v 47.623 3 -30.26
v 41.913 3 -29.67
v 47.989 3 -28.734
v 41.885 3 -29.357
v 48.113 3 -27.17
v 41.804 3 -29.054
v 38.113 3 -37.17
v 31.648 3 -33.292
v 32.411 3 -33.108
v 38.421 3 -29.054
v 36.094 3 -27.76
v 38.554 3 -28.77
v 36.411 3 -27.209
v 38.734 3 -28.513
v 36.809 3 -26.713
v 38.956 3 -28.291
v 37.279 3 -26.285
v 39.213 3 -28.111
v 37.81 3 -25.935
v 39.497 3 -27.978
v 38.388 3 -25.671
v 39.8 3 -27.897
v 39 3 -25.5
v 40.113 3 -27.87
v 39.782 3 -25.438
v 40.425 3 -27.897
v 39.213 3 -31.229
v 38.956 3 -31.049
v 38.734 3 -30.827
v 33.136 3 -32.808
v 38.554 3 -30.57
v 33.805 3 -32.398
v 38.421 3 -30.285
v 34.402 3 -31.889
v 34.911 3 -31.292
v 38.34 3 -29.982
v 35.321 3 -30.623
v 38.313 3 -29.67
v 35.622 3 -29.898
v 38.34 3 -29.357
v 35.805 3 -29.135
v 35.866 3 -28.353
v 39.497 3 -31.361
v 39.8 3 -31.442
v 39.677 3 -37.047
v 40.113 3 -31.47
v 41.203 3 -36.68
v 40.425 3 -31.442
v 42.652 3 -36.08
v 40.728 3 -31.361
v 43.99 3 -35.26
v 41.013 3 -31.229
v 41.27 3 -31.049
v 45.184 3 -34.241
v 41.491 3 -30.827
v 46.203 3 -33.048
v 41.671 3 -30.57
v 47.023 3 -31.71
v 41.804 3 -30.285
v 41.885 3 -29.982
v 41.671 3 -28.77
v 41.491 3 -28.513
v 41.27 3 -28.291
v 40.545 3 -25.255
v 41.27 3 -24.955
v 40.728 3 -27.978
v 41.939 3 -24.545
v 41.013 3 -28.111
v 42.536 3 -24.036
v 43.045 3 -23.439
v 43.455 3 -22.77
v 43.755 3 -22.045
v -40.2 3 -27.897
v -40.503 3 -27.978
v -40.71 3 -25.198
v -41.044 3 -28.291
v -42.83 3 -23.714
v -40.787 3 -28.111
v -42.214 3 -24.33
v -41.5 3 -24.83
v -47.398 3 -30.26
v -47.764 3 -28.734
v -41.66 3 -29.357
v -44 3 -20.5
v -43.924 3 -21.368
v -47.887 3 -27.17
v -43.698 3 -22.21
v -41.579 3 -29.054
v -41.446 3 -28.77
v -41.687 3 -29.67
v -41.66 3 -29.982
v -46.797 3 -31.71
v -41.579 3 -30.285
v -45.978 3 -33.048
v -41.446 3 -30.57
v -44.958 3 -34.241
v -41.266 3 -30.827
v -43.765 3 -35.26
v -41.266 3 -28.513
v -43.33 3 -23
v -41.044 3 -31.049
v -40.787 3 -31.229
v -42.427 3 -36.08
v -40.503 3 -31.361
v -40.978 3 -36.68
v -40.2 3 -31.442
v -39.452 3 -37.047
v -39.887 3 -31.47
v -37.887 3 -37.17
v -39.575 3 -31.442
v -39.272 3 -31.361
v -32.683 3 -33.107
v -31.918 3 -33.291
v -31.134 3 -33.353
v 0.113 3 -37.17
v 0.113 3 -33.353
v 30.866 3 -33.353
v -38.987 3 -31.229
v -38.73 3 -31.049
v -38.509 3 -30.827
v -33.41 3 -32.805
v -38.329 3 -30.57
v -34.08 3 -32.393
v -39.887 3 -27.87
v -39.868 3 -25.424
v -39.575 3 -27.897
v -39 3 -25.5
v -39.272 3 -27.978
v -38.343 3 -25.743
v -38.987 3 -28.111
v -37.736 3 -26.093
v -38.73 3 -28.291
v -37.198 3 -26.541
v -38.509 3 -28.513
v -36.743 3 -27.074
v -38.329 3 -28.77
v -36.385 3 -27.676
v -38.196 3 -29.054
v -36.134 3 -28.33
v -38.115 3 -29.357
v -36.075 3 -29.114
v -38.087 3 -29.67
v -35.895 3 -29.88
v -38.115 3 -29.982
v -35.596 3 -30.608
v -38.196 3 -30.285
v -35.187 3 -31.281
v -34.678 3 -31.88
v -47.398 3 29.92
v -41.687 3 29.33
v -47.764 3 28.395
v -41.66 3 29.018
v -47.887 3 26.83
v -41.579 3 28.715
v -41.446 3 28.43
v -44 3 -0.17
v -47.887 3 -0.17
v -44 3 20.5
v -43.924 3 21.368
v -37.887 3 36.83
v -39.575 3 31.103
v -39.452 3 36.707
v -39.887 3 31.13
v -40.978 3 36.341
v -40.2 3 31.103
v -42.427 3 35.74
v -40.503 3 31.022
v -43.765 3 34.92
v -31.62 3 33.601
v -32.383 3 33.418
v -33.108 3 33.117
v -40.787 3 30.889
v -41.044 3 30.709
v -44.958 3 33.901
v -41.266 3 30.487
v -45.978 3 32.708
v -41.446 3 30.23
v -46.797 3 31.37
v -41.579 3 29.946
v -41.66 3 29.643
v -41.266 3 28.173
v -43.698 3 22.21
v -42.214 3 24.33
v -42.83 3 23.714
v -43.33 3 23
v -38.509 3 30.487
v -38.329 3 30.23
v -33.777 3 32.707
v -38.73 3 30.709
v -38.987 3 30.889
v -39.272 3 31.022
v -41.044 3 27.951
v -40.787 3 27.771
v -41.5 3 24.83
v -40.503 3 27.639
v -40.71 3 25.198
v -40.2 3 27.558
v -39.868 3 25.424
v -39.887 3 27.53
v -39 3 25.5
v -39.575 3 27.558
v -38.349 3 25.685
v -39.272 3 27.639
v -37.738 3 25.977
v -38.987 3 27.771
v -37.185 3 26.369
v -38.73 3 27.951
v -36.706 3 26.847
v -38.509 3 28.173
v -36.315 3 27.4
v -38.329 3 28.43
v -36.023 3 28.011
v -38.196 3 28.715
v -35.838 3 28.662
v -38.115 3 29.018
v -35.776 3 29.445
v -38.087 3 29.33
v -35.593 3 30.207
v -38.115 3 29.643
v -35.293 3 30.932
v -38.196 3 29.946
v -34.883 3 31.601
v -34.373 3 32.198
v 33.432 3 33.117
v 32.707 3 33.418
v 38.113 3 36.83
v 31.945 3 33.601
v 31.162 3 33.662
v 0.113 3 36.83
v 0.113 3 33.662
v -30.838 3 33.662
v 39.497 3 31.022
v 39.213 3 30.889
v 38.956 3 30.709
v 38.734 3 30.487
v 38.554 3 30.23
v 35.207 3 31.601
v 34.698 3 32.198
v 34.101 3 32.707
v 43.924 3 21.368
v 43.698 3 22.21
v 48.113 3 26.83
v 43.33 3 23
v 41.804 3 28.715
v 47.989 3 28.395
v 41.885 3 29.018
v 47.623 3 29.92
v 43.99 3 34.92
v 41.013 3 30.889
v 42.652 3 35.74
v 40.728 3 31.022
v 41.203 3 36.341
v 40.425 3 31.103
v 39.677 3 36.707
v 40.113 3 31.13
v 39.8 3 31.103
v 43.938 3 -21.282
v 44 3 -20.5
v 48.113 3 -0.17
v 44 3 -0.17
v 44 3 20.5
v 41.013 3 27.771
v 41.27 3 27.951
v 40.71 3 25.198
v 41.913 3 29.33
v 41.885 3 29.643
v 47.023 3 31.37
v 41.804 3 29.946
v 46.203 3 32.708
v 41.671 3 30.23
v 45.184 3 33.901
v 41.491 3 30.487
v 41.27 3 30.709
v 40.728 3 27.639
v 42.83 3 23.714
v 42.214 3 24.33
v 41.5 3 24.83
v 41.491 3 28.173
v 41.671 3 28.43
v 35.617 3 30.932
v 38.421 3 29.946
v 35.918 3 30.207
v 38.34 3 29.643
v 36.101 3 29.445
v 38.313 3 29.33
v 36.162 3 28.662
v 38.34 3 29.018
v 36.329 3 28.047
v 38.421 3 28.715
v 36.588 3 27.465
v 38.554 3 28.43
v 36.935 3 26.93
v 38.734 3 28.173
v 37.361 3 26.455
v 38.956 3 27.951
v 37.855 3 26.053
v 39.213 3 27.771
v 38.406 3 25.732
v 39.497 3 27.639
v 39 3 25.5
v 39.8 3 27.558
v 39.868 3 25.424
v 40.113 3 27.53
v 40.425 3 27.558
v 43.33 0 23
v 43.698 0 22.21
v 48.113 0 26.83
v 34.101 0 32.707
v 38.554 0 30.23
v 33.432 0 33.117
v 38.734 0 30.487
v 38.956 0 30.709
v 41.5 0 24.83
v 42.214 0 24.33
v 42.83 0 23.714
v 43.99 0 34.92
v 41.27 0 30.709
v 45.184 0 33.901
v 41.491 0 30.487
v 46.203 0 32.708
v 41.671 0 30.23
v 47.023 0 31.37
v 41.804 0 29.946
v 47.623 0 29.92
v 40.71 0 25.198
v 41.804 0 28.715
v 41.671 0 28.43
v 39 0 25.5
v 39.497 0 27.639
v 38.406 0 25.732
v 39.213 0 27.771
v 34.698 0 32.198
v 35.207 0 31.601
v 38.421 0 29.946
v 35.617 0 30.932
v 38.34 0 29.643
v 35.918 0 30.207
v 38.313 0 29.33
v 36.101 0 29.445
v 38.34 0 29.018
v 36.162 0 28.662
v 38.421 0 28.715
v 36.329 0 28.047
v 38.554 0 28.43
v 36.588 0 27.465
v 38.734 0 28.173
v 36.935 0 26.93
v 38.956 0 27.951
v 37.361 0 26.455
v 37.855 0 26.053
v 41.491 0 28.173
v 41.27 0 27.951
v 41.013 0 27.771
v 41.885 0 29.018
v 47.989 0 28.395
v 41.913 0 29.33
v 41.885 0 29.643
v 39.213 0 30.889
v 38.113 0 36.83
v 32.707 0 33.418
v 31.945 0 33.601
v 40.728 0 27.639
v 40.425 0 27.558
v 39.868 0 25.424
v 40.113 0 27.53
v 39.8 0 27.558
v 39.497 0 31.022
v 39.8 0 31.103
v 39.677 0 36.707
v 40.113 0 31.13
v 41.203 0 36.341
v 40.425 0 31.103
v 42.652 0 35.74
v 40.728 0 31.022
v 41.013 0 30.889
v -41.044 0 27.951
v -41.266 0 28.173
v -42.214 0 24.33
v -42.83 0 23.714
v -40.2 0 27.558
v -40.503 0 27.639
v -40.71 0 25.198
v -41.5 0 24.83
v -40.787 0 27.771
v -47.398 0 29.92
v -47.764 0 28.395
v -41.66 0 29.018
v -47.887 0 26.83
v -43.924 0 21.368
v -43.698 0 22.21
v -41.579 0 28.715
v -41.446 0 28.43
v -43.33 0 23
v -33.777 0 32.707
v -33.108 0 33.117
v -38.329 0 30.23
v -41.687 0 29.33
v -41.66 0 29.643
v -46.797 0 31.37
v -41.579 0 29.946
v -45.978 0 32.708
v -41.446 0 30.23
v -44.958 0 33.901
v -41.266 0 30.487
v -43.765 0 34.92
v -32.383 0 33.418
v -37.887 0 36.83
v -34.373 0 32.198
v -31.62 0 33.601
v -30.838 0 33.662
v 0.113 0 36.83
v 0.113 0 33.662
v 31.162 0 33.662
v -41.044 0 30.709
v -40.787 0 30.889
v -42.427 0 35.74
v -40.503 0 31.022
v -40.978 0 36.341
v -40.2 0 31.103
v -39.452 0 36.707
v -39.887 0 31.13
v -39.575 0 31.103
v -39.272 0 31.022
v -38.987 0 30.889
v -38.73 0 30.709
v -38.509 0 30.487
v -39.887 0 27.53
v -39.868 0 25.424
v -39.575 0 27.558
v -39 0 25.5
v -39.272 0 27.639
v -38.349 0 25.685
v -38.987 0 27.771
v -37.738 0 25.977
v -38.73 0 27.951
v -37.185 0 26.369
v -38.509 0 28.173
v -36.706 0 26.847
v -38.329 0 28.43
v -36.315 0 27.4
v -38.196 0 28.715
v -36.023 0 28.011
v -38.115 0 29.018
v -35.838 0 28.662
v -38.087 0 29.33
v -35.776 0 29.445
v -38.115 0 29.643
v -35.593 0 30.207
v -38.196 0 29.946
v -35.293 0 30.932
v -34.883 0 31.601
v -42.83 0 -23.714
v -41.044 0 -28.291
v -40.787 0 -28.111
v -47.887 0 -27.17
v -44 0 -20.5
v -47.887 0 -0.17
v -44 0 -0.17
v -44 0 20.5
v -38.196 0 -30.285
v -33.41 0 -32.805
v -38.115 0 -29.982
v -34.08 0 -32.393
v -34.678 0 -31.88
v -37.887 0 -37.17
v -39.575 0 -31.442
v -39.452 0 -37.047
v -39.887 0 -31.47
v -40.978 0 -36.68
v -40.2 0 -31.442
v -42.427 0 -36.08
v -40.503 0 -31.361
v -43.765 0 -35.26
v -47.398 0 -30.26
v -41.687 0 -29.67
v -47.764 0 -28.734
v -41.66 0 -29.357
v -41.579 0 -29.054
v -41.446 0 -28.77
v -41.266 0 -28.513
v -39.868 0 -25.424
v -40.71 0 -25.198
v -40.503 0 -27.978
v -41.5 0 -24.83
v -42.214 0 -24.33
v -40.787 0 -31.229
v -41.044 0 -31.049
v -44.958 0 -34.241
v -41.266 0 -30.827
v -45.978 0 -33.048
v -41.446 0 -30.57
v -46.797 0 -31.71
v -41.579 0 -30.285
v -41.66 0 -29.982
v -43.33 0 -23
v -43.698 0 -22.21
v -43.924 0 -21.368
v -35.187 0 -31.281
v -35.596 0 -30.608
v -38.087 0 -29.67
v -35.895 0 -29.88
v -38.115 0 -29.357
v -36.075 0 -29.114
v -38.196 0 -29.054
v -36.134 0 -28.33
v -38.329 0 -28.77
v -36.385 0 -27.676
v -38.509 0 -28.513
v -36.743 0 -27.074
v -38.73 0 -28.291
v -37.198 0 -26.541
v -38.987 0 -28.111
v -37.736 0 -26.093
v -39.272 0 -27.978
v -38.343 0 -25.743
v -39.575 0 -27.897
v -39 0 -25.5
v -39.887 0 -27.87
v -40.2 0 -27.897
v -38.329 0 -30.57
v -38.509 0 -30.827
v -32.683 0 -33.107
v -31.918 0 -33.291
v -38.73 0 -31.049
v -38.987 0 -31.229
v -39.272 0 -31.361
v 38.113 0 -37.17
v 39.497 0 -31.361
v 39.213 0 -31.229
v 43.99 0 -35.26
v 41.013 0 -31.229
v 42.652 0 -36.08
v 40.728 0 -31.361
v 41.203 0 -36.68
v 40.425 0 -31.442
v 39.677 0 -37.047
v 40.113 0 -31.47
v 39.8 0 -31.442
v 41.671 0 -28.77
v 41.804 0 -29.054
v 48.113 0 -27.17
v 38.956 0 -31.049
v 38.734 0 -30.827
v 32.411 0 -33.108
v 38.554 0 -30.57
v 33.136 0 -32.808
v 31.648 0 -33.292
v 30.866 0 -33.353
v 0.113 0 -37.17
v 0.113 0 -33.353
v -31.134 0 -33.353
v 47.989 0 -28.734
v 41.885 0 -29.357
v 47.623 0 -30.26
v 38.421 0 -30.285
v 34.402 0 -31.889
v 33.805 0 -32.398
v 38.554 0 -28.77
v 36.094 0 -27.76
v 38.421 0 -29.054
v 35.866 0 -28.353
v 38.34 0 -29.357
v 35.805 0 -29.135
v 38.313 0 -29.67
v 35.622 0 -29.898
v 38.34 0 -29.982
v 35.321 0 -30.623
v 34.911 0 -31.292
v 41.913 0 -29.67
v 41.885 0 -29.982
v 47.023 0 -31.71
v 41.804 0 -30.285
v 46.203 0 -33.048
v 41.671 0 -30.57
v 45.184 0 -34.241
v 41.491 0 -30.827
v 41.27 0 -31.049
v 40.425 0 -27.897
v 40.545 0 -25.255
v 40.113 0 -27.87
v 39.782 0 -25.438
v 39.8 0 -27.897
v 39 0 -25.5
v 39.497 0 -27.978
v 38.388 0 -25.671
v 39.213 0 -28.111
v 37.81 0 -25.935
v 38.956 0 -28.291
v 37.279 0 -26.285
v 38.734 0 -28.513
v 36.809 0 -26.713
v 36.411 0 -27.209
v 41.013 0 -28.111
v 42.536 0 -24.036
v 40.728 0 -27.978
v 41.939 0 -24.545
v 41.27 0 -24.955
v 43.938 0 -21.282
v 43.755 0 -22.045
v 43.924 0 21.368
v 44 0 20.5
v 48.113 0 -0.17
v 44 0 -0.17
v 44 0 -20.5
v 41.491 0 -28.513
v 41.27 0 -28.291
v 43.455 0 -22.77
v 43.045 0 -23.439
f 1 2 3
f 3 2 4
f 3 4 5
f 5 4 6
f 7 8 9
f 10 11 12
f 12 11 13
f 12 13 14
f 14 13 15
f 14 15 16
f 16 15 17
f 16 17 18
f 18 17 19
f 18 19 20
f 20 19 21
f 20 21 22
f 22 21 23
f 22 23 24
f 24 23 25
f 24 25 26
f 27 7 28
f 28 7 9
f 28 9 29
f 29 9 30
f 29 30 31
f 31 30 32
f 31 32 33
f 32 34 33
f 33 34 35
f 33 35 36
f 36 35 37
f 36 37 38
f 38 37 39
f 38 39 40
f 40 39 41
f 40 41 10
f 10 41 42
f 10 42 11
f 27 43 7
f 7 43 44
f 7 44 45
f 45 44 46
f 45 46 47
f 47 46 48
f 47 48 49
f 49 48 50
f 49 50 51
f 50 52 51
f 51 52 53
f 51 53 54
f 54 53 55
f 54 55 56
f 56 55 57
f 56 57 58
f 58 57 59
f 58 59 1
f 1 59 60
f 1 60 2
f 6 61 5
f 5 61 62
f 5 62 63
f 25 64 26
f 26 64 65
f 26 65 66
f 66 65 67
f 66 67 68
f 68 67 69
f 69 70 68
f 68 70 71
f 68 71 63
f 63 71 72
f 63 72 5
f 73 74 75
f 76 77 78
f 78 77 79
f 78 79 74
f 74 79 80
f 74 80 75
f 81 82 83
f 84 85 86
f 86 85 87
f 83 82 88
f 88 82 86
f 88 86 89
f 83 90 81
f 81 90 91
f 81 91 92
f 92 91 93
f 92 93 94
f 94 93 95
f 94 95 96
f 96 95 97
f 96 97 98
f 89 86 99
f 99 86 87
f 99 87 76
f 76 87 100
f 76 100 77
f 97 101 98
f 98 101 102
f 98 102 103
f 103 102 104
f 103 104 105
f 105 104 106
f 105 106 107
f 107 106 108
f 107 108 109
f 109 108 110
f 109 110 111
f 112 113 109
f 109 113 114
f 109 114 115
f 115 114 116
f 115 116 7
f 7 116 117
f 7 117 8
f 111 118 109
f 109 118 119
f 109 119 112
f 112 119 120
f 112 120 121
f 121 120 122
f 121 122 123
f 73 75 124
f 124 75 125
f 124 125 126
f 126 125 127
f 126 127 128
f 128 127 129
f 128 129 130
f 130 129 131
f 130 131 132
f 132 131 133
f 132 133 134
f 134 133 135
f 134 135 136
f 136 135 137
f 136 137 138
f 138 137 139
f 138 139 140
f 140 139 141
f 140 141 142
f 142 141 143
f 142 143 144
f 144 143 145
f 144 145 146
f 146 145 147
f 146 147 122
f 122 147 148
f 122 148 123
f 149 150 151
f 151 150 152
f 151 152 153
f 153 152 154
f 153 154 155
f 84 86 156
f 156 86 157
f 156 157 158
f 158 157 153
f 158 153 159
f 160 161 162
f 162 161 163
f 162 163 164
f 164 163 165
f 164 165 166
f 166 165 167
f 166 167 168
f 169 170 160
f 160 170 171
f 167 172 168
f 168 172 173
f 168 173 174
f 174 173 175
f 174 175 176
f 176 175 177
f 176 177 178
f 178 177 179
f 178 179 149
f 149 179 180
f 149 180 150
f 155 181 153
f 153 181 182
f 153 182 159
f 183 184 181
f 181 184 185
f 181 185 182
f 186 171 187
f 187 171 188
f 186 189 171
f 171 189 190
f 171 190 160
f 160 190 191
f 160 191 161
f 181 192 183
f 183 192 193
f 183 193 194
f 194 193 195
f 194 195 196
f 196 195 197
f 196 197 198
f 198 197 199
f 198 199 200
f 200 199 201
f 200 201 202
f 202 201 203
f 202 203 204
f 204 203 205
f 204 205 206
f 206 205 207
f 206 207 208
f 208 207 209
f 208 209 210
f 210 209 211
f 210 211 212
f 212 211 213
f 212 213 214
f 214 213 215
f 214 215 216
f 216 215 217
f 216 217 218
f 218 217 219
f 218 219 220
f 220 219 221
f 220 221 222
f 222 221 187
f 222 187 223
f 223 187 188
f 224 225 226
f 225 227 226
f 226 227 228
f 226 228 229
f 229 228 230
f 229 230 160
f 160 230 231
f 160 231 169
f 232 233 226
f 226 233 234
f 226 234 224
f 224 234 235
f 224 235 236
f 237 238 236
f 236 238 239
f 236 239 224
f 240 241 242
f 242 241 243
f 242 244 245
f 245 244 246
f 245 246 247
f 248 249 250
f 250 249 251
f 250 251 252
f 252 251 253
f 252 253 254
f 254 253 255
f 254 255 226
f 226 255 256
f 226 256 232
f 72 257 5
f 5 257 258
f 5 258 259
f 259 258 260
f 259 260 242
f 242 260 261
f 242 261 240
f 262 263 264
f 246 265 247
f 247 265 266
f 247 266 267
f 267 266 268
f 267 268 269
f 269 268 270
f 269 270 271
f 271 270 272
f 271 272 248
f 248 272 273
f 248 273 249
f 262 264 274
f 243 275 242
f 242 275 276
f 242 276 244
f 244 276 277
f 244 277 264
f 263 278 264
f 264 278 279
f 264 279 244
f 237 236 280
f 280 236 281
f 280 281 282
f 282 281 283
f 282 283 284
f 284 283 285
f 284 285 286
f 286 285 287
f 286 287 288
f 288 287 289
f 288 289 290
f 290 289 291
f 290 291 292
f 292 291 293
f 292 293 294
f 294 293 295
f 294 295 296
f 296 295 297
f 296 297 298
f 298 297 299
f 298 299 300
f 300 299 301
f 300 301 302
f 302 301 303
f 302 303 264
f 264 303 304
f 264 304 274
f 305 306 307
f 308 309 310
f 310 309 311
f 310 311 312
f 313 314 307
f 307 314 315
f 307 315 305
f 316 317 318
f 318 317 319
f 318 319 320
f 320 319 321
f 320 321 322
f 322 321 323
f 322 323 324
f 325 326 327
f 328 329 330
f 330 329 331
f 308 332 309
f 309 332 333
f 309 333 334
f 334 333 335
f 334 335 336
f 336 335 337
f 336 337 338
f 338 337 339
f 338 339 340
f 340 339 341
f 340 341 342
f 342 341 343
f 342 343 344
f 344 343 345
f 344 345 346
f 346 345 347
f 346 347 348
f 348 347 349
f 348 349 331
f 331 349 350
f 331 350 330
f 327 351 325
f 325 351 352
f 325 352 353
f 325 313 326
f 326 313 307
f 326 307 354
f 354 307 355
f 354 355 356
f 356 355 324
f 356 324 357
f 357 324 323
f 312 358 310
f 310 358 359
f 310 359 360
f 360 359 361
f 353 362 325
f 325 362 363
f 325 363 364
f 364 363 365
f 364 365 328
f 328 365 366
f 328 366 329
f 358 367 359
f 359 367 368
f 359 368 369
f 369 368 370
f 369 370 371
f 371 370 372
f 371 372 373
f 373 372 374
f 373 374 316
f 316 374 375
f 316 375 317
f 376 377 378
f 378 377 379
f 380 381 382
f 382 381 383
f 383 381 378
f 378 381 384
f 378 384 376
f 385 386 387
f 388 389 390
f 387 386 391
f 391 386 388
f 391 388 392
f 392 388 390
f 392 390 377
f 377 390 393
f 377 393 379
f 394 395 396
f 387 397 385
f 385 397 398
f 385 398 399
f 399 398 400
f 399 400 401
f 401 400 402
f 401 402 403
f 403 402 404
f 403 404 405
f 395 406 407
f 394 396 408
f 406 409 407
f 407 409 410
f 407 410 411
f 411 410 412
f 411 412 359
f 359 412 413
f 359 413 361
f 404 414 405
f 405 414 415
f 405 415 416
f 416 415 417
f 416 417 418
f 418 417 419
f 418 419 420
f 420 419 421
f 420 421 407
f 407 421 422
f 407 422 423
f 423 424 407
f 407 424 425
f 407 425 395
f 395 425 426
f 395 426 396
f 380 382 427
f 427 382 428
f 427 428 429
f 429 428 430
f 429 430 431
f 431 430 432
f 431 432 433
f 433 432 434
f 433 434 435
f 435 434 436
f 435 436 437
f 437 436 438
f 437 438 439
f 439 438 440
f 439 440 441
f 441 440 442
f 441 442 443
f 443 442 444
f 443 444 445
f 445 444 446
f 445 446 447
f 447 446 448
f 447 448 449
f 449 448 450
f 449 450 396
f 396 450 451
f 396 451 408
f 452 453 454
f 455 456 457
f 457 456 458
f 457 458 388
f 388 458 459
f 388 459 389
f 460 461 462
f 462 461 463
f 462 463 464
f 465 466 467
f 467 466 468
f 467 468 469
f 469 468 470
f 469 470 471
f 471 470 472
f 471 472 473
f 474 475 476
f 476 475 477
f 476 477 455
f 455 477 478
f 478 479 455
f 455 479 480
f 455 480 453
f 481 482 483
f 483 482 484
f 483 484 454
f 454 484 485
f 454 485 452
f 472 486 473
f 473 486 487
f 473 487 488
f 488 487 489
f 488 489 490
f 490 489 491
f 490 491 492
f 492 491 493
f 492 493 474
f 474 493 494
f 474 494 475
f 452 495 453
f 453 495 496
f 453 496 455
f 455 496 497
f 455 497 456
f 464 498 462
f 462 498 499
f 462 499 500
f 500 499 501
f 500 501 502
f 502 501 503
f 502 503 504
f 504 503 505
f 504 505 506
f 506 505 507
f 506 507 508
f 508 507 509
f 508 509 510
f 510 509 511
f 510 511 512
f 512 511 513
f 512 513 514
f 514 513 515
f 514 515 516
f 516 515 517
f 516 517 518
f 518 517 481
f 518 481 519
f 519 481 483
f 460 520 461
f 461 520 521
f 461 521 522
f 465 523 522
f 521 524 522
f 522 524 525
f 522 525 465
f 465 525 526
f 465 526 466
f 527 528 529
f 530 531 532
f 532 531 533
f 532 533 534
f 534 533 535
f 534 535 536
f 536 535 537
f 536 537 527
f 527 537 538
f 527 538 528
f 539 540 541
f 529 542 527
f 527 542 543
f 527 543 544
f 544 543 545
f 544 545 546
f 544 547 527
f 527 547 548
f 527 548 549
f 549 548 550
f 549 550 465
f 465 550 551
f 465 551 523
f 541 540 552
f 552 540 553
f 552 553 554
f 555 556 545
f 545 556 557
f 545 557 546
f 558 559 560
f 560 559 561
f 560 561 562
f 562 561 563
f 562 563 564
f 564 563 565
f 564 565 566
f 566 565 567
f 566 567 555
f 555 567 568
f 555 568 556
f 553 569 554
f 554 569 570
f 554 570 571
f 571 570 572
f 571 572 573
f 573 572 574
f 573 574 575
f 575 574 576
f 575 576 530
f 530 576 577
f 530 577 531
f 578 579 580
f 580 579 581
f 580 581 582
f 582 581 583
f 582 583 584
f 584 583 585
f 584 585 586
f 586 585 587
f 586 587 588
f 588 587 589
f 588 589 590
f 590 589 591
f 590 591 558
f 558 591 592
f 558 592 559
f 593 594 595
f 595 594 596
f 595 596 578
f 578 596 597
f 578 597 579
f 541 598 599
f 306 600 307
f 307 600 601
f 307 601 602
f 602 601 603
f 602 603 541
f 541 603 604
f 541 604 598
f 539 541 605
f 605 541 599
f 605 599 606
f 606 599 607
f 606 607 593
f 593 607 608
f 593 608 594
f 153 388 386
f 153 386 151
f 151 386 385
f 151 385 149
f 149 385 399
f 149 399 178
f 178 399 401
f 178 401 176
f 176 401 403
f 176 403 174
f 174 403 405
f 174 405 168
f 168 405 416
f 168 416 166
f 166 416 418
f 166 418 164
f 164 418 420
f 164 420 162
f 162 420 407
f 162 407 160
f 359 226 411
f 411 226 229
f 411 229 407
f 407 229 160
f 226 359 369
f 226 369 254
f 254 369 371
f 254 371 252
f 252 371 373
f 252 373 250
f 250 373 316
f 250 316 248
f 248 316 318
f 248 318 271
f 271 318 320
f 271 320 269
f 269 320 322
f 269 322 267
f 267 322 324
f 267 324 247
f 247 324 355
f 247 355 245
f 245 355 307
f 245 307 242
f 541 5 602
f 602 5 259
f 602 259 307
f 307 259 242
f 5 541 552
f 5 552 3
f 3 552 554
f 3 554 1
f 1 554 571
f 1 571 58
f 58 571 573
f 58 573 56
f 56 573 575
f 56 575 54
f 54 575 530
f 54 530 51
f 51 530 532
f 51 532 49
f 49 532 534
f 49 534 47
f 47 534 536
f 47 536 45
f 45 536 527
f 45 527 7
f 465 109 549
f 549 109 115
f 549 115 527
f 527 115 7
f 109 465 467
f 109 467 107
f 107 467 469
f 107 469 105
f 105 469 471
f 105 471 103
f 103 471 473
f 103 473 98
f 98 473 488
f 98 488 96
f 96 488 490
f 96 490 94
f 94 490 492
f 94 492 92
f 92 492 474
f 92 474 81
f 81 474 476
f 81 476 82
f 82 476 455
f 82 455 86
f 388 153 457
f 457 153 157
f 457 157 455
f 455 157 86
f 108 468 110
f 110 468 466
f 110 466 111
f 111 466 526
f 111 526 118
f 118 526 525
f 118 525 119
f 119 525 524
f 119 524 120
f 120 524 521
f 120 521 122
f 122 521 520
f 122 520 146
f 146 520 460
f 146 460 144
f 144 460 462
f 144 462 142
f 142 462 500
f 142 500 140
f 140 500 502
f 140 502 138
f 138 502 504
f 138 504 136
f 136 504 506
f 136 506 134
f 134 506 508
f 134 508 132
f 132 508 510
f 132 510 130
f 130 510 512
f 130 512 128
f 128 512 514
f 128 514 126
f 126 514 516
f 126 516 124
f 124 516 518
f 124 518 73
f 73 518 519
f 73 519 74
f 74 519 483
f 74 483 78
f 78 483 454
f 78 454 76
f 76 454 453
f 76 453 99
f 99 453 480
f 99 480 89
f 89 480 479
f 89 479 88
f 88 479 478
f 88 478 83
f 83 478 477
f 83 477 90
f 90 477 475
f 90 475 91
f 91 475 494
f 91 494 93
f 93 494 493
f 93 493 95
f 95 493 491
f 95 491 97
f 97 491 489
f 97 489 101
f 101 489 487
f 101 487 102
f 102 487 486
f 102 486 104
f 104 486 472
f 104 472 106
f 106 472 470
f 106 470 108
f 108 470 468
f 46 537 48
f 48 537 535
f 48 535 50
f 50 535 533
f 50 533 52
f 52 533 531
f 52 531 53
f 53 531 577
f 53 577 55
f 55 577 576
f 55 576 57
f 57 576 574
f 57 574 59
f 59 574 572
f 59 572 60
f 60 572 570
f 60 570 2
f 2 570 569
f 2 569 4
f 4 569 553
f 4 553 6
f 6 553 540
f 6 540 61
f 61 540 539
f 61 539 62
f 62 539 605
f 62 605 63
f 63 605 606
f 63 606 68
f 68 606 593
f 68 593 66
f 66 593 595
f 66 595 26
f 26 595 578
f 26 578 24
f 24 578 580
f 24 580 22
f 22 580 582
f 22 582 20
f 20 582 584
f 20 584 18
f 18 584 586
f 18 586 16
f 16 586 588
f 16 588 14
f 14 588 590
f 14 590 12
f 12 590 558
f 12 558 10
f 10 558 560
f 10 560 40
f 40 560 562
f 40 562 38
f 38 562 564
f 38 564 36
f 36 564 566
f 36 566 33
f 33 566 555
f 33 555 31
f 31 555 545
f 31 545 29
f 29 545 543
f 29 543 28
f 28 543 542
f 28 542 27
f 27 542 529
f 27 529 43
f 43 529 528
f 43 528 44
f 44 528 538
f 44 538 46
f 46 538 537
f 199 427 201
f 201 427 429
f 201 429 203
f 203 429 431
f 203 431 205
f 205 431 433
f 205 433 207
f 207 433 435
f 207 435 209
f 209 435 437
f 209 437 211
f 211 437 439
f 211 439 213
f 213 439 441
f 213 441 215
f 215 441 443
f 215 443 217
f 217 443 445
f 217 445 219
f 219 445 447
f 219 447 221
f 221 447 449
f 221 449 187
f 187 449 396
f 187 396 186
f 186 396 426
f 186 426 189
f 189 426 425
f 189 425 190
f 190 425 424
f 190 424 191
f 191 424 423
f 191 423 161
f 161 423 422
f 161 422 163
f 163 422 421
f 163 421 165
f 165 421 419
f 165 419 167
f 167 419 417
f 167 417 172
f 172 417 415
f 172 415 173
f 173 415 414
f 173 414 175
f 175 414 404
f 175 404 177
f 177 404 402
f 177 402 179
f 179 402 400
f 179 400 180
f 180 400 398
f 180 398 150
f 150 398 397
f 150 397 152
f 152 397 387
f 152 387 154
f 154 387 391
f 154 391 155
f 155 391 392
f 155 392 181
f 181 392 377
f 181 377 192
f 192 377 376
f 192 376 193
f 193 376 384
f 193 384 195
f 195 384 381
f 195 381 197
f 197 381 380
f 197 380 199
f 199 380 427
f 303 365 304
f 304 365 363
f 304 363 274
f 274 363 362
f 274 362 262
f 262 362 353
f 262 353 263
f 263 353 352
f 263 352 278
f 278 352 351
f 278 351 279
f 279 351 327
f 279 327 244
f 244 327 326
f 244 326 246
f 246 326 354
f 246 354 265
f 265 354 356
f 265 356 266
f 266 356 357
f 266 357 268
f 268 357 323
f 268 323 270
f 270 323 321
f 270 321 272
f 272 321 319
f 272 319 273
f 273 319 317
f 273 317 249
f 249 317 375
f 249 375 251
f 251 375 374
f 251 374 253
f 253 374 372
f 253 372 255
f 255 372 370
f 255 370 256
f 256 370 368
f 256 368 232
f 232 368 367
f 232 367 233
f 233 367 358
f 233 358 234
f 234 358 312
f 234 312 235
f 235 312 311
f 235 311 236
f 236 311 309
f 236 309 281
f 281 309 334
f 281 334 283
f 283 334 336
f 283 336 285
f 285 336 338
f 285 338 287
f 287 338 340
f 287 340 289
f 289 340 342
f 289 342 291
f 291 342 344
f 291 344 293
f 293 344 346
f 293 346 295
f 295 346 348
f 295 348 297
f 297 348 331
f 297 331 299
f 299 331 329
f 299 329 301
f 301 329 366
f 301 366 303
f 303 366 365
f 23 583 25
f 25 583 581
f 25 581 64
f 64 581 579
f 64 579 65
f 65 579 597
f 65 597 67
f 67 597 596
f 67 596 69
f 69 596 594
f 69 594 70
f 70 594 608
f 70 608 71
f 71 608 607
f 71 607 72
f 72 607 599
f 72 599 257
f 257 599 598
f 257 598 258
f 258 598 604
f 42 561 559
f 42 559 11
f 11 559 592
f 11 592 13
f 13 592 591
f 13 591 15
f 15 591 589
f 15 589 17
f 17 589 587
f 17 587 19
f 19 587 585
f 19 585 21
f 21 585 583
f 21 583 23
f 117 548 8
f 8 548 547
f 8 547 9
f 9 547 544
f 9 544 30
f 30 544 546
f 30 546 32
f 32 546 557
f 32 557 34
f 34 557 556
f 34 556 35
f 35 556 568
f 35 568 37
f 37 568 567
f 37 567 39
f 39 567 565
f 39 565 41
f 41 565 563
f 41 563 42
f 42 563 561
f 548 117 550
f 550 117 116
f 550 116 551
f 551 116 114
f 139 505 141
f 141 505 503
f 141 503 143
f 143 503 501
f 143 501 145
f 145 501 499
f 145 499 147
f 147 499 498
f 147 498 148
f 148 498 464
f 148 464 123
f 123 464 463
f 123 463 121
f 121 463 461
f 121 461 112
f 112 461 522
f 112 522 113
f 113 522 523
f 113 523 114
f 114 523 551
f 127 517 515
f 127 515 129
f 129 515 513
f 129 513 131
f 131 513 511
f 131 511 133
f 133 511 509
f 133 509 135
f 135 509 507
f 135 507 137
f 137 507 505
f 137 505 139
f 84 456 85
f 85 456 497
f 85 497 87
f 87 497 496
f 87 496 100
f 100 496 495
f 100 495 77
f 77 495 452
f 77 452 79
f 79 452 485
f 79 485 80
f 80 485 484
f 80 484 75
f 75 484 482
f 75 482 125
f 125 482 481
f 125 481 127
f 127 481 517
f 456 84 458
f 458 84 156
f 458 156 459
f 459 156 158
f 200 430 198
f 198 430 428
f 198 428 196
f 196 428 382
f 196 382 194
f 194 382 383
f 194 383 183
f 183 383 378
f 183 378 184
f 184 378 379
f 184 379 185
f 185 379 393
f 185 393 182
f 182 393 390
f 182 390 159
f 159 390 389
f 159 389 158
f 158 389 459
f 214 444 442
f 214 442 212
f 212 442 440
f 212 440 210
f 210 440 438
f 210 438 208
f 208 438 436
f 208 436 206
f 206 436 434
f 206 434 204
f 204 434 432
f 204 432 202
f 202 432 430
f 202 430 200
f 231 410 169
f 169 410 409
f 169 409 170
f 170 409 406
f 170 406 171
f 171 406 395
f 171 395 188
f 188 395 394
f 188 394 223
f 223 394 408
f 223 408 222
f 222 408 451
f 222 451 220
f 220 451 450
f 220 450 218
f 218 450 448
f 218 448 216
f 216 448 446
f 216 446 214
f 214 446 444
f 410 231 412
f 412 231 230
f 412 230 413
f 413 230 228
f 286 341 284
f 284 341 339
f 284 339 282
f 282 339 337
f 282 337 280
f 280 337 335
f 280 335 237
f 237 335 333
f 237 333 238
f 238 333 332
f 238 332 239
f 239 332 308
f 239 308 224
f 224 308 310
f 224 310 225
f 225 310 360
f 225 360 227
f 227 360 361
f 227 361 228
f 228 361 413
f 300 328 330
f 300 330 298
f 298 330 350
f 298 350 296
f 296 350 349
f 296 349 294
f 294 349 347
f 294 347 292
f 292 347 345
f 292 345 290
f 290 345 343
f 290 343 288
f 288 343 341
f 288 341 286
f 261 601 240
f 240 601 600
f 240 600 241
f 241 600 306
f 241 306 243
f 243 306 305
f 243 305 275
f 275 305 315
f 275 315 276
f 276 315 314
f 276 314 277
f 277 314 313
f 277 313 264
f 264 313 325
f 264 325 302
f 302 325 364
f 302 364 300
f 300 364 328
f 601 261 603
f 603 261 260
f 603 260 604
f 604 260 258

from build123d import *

# Parameters (mm, degrees)
IZIM1_R                     = 1.8
Y_KSEKLIK_EKSTR_ZYON1_DEPTH = 3


with BuildPart() as part:
    # Çizim1 → Yükseklik-Ekstrüzyon1 (new body)
    with BuildSketch(Plane(origin=(0, 0, 0), x_dir=(1, 0, 0), z_dir=(0, 1, 0))):
        with BuildLine():
            Line((-37.887405356, 37.169798919), (38.112594644, 37.169798919))
            ThreePointArc((38.112594644, 37.169798919), (45.183662456, 34.240866731), (48.112594644, 27.169798919))
            Line((48.112594644, 27.169798919), (48.112594644, -26.830201081))
            ThreePointArc((48.112594644, -26.830201081), (45.183662456, -33.901268893), (38.112594644, -36.830201081))
            Line((38.112594644, -36.830201081), (-37.887405356, -36.830201081))
            ThreePointArc((-37.887405356, -36.830201081), (-44.958473168, -33.901268893), (-47.887405356, -26.830201081))
            Line((-47.887405356, -26.830201081), (-47.887405356, 27.169798919))
            ThreePointArc((-47.887405356, 27.169798919), (-44.958473168, 34.240866731), (-37.887405356, 37.169798919))
        make_face()
        with Locations(Location((-39.887405356, 29.669798919, 0), (0, 0, 270))):
            Circle(IZIM1_R, mode=Mode.SUBTRACT)
        with Locations(Location((40.112594644, 29.669798919, 0), (0, 0, 270))):
            Circle(IZIM1_R, mode=Mode.SUBTRACT)
        with Locations(Location((-39.887405356, -29.330201081, 0), (0, 0, 270))):
            Circle(IZIM1_R, mode=Mode.SUBTRACT)
        with Locations(Location((40.112594644, -29.330201081, 0), (0, 0, 270))):
            Circle(IZIM1_R, mode=Mode.SUBTRACT)
        with BuildLine():
            Line((-44, 20.5), (-44, -20.5))
            ThreePointArc((-44, -20.5), (-42.535533906, -24.035533906), (-39, -25.5))
            ThreePointArc((-39, -25.5), (-36.935561042, -26.597935324), (-35.837625718, -28.662374282))
            ThreePointArc((-35.837625718, -28.662374282), (-34.373159624, -32.197908188), (-30.837625718, -33.662374282))
            Line((-30.837625718, -33.662374282), (31.162374282, -33.662374282))
            ThreePointArc((31.162374282, -33.662374282), (34.697908188, -32.197908188), (36.162374282, -28.662374282))
            ThreePointArc((36.162374282, -28.662374282), (37.138980167, -26.684391009), (39, -25.5))
            ThreePointArc((39, -25.5), (42.535533906, -24.035533906), (44, -20.5))
            Line((44, -20.5), (44, 20.5))
            ThreePointArc((44, 20.5), (42.535533906, 24.035533906), (39, 25.5))
            ThreePointArc((39, 25.5), (37.03578822, 26.490091983), (35.866325447, 28.353091412))
            ThreePointArc((35.866325447, 28.353091412), (34.401859353, 31.888625318), (30.866325447, 33.353091412))
            Line((30.866325447, 33.353091412), (-31.133674553, 33.353091412))
            ThreePointArc((-31.133674553, 33.353091412), (-34.677536648, 31.880277464), (-36.133618935, 28.329507991))
            ThreePointArc((-36.133618935, 28.329507991), (-37.197839579, 26.540975831), (-39, 25.5))
            ThreePointArc((-39, 25.5), (-42.535533906, 24.035533906), (-44, 20.5))
        make_face(mode=Mode.SUBTRACT)
    extrude(amount=Y_KSEKLIK_EKSTR_ZYON1_DEPTH)


solid = part.part
